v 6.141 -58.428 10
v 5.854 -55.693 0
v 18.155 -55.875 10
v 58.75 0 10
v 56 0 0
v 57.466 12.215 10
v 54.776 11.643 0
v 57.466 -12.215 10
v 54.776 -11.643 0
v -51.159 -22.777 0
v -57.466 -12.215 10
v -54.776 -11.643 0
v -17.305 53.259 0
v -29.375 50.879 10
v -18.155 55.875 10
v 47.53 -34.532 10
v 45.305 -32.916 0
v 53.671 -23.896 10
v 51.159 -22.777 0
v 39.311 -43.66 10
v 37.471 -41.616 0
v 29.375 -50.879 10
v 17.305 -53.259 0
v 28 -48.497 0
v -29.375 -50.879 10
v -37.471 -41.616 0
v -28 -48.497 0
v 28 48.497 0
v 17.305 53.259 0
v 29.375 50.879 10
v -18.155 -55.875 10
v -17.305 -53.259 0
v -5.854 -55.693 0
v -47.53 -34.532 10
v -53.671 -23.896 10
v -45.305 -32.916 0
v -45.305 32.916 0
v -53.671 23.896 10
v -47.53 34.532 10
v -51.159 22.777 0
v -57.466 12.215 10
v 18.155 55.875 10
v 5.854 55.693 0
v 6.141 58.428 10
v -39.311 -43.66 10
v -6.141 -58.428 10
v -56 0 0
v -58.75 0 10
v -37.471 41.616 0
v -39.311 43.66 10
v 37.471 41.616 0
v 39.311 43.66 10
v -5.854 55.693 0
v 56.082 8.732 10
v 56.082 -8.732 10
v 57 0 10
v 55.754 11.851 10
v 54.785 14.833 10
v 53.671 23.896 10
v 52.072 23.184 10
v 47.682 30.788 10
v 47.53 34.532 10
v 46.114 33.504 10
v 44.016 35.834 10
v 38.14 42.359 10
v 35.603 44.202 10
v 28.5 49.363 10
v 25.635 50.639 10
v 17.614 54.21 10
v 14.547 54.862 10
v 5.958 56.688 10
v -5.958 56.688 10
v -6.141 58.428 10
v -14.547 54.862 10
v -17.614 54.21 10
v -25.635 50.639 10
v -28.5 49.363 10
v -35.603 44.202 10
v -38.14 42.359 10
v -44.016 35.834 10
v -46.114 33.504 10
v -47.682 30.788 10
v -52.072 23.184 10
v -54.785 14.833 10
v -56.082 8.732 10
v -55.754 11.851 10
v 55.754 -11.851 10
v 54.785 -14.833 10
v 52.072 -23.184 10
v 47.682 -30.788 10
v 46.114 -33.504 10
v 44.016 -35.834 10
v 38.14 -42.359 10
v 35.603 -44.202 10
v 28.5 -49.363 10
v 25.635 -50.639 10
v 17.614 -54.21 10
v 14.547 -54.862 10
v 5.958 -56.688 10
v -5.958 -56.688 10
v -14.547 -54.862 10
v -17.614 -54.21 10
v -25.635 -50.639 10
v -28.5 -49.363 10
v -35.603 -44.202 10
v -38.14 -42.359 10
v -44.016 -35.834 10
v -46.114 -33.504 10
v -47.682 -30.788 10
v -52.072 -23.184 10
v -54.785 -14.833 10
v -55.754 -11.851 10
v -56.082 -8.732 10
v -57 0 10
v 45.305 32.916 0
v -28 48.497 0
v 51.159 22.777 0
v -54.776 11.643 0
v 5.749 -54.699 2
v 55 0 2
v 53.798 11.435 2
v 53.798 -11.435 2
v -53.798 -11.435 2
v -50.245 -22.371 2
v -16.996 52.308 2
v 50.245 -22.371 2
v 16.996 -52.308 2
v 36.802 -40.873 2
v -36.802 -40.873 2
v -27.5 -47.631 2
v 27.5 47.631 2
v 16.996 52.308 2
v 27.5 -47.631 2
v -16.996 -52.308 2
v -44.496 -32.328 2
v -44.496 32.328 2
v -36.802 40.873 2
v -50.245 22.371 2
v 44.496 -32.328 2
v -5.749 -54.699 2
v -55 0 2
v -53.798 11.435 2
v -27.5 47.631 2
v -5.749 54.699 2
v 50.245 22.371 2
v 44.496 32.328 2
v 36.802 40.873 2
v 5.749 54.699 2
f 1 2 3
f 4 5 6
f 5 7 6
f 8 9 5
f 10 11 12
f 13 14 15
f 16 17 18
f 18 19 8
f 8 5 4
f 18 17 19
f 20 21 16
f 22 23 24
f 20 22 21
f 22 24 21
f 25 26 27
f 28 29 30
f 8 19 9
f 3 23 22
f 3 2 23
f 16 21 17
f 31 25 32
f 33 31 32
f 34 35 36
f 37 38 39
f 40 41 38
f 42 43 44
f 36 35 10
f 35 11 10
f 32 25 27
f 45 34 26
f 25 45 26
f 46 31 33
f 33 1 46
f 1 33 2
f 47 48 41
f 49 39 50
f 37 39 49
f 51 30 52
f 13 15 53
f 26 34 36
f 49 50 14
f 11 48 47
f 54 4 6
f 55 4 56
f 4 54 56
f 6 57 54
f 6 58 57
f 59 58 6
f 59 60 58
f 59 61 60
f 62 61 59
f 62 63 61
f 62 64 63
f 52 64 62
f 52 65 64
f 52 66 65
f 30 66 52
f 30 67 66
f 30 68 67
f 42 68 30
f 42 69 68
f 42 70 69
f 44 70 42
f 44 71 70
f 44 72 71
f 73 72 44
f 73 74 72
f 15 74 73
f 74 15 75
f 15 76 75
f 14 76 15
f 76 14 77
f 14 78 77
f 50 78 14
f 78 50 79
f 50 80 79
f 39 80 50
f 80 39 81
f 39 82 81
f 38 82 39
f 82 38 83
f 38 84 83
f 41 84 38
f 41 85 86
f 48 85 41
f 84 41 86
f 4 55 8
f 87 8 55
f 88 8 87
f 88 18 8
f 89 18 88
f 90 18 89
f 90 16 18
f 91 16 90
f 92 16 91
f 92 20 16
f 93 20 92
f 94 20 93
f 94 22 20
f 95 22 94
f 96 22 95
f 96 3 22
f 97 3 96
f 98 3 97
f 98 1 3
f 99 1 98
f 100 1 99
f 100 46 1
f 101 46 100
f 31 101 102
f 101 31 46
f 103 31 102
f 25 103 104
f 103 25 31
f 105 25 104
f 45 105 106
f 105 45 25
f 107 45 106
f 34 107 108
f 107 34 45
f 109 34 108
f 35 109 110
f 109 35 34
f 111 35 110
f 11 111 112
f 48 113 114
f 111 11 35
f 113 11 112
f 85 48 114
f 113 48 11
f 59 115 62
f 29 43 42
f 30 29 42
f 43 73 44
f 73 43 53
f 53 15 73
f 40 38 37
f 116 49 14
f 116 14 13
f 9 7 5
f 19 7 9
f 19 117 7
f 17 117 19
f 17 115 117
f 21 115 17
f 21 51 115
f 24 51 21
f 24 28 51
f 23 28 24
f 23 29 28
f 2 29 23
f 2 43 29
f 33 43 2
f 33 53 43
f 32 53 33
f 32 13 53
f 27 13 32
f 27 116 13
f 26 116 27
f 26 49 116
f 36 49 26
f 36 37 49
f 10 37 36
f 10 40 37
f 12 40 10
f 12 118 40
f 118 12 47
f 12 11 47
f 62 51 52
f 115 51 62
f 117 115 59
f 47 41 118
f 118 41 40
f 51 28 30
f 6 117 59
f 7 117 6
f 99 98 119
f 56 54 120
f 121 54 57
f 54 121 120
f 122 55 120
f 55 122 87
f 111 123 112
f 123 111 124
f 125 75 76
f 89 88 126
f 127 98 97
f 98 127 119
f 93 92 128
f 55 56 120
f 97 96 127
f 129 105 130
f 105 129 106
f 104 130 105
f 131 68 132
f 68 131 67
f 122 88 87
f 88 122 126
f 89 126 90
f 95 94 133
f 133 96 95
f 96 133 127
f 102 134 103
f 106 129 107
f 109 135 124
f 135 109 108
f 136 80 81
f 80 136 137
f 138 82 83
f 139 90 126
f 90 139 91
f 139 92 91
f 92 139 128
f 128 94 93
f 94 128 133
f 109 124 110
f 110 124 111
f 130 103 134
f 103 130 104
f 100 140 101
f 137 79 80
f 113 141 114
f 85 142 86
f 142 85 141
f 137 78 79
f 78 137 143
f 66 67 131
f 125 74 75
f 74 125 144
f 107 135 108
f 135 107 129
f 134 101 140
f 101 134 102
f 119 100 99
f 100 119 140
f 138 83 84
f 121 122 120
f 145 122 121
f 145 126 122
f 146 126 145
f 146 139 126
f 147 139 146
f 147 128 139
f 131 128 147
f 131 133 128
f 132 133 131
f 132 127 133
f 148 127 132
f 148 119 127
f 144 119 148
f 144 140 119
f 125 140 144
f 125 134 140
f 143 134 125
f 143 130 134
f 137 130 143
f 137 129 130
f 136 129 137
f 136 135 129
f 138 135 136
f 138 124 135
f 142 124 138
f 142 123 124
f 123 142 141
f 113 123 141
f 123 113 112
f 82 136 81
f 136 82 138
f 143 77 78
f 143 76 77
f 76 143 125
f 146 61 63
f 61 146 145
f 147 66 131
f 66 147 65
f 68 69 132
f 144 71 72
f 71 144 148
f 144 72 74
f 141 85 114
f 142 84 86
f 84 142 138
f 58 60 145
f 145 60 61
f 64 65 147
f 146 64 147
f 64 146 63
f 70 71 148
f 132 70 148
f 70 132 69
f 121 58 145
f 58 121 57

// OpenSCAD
//  resizeable plant tray

dib = 110; //internal diameter
thick = 2;
wall = 10; //height


dit=dib*1.05; //taper, wider top

db=dib+thick; //outer wall diameter
dt=dit+thick; //taper


difference(){
    cylinder(wall,d1=db,d2=dt);
    translate([0,0,thick]){
        cylinder(wall+1,d1=dib,d2=dit);
    }
}
